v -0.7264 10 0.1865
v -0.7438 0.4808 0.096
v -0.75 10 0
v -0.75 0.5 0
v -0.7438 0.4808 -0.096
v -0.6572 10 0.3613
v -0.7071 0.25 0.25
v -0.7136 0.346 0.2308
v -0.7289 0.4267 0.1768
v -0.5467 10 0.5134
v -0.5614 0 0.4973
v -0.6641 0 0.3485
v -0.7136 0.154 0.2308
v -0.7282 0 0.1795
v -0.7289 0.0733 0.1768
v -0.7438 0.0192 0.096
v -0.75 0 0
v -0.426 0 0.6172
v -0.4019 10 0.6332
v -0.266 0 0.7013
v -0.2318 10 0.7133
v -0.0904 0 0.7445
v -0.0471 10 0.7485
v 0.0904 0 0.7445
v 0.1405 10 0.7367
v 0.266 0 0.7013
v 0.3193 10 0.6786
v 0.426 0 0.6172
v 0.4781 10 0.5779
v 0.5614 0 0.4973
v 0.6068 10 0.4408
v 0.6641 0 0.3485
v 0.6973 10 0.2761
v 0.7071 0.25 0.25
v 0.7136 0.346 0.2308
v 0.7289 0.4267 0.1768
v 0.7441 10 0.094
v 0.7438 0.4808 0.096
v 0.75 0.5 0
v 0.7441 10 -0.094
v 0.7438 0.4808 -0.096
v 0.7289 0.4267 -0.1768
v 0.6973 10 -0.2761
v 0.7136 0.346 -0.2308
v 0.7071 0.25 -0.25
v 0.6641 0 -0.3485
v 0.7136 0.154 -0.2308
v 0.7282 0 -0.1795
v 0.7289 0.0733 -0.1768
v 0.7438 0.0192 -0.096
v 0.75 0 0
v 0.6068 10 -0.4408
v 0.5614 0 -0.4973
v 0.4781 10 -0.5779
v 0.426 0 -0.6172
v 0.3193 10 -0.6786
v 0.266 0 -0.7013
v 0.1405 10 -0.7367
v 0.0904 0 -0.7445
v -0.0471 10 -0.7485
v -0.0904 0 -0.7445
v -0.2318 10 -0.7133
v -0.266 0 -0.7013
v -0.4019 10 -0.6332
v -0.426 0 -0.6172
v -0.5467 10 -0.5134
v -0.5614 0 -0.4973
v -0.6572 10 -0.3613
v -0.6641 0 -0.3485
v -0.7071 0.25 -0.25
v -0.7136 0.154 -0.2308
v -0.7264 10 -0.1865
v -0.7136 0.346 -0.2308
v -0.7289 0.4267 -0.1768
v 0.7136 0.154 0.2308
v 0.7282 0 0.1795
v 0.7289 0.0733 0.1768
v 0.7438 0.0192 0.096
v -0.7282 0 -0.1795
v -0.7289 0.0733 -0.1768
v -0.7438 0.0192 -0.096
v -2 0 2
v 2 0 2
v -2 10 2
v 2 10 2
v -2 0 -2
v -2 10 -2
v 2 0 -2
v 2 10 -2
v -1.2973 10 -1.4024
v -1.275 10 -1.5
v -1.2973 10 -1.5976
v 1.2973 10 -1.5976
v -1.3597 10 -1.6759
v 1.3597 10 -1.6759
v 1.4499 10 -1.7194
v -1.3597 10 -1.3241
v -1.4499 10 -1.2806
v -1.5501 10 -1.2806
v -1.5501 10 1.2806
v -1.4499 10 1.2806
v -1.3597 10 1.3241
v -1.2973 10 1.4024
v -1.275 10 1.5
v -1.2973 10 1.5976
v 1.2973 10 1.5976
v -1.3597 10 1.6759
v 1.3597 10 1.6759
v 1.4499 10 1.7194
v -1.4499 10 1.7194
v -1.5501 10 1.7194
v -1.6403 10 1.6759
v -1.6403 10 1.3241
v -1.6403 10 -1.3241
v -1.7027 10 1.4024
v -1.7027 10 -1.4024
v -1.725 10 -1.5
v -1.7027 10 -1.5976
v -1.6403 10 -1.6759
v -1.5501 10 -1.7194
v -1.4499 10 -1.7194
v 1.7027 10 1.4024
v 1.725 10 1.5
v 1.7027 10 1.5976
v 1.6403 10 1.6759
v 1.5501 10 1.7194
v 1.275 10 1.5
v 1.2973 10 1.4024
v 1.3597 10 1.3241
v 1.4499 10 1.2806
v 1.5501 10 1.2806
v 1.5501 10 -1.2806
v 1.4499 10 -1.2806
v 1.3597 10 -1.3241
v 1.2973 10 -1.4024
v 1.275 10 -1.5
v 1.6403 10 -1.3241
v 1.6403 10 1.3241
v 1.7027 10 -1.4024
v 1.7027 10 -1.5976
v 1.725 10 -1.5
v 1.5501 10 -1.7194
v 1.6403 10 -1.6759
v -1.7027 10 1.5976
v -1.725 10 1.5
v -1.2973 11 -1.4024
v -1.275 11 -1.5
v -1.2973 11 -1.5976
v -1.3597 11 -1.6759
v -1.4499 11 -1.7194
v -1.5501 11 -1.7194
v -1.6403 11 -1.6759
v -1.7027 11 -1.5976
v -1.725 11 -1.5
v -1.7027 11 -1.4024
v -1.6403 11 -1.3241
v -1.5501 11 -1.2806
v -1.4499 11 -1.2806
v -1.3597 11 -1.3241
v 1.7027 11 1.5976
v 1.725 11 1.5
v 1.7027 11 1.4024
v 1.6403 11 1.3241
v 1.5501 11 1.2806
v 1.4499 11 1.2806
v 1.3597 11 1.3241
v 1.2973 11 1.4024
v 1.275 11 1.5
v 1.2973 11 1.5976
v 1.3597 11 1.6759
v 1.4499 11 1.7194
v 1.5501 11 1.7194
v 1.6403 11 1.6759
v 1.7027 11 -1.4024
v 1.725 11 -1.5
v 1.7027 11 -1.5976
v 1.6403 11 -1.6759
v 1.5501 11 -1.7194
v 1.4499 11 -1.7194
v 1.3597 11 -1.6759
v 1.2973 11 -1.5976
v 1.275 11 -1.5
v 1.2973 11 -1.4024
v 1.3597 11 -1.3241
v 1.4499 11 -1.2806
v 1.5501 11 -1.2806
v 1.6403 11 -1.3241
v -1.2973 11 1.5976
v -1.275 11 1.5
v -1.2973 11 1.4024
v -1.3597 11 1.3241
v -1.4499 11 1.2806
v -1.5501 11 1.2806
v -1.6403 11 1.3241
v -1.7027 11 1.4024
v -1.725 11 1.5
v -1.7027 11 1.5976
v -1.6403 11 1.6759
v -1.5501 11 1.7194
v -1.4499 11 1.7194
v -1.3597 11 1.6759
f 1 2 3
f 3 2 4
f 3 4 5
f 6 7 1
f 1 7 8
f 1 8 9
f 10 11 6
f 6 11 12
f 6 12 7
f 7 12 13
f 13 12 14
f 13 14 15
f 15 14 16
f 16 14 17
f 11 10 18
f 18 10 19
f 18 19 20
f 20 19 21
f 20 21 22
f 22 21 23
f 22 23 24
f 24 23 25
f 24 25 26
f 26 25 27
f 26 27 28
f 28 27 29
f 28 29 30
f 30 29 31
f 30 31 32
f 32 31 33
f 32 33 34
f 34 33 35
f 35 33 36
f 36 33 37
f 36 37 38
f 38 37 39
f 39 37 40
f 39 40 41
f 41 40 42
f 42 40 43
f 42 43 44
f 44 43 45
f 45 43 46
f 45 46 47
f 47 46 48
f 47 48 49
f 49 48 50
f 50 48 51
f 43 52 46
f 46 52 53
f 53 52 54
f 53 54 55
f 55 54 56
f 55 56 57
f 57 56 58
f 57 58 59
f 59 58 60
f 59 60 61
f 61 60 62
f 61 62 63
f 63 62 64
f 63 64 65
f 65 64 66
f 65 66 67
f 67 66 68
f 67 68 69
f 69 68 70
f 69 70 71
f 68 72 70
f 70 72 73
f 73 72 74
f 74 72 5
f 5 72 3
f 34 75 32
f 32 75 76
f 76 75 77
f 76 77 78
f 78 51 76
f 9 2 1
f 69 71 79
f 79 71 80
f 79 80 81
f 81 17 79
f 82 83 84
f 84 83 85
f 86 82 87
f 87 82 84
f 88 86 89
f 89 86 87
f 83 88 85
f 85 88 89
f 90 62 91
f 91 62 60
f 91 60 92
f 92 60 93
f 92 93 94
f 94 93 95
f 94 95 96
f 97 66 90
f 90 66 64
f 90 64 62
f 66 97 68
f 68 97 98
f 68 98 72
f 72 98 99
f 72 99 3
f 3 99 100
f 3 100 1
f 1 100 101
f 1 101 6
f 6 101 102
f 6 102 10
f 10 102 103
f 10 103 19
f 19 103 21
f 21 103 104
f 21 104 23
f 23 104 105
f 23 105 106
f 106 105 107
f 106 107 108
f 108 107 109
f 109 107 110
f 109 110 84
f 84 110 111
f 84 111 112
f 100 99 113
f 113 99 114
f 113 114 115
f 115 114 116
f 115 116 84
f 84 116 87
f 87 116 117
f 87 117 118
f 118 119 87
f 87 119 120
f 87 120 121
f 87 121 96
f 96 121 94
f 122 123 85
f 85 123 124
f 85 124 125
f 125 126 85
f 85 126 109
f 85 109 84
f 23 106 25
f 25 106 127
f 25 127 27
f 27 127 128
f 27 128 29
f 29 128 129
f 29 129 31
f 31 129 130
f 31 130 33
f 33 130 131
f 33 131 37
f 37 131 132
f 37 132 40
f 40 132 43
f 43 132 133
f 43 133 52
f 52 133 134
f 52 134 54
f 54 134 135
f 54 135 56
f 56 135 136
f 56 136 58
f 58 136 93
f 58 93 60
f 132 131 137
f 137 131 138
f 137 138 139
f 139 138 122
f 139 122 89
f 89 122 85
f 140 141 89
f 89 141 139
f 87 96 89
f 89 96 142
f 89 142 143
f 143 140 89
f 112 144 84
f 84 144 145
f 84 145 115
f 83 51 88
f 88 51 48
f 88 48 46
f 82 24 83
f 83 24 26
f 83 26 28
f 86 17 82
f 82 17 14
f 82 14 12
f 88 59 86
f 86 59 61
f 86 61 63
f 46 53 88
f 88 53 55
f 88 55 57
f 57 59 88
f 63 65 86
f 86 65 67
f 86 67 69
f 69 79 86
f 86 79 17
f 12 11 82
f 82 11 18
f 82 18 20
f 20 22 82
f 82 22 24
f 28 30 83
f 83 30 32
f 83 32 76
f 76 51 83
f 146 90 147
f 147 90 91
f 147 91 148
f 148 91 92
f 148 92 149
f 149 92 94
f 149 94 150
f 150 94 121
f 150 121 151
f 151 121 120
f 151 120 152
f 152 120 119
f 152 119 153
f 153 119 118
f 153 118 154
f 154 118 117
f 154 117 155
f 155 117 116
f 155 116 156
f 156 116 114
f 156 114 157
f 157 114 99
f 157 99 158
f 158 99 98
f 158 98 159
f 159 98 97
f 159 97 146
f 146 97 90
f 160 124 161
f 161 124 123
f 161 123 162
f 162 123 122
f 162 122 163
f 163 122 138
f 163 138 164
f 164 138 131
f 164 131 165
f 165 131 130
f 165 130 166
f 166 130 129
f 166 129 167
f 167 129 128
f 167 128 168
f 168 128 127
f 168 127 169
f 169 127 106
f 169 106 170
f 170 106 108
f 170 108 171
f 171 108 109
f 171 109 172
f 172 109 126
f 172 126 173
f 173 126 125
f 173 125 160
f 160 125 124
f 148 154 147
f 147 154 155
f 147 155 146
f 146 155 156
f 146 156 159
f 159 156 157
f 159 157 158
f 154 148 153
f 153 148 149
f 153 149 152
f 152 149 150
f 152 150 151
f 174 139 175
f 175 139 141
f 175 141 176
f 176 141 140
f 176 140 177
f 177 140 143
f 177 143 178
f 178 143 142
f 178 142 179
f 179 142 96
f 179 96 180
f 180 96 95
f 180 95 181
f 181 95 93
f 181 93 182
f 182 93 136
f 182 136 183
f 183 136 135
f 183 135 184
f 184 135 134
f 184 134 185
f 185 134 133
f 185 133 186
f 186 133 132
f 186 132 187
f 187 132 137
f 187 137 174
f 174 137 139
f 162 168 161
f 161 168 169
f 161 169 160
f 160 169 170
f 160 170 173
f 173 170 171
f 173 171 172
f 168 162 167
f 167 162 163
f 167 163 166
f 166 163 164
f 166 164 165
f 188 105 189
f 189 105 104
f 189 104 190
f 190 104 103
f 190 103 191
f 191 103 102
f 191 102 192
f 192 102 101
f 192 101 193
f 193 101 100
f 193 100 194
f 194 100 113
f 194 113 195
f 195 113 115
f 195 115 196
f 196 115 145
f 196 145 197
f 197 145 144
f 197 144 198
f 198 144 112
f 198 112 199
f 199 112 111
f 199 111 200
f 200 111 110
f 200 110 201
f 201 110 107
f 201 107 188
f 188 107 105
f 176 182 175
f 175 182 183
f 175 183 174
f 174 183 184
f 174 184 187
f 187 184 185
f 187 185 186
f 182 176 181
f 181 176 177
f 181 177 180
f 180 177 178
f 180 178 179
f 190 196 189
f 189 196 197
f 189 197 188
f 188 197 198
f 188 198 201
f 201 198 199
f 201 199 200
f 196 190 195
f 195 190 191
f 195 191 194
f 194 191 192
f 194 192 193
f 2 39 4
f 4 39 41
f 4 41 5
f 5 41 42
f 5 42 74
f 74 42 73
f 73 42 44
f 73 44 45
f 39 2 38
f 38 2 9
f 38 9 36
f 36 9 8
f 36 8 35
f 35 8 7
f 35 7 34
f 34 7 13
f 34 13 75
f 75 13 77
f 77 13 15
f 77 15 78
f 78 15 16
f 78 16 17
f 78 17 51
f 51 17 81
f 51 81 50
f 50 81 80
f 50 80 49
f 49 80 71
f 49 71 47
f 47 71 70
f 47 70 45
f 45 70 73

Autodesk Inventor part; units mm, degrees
ref_plane "YZ Plane" through (0, 0, 0) normal (1, 0, 0) x (0, 1, 0)
ref_plane "XZ Plane" through (0, 0, 0) normal (0, 1, 0) x (-1, 0, 0)
ref_plane "XY Plane" through (0, 0, 0) normal (0, 0, 1) x (1, 0, 0)
sketch "Sketch1" plane through (0, 0, 0) normal (0, 1, 0) x (-1, 0, 0)
  line L0 (2, 2) -> (-2, 2)
  line L1 (-2, 2) -> (-2, -2)
  line L2 (-2, -2) -> (2, -2)
  line L3 (2, -2) -> (2, 2)
  line L4 (2, 2) -> (-2, -2) construction
  line L5 (-2, 2) -> (2, -2) construction
  circle A0 centre (0, 0) radius 0.75
  dimension "d0" = 4
  dimension "d1" = 4
  dimension "d2" = 1.5
extrude "Extrusion1" add sketch "Sketch1" along normal blind 10
sketch "Sketch2" plane through (0, 10, 0) normal (0, 1, 0) x (1, 0, 0)
  line L0 (-1.5, 1.5) -> (1.5, -1.5) construction
  line L1 (1.5, 1.5) -> (-1.5, -1.5) construction
  circle A0 centre (1.5, -1.5) radius 0.225
  circle A1 centre (1.5, 1.5) radius 0.225
  circle A2 centre (-1.5, 1.5) radius 0.225
  circle A3 centre (-1.5, -1.5) radius 0.225
  point P0 (0, 0)
  dimension "d5" = 3
  dimension "d7" = 0.45
  dimension "d8" = 0.45
  dimension "d9" = 0.45
  dimension "d10" = 0.45
extrude "Extrusion2" add sketch "Sketch2" along normal blind 1
sketch "Sketch3" plane through (0, 0, 0) normal (0, -1, 0) x (1, 0, 0)
  line L0 (1, 0.25) -> (-1, 0.25)
  line L1 (-1, 0.25) -> (-1, -0.25)
  line L2 (-1, -0.25) -> (1, -0.25)
  line L3 (1, -0.25) -> (1, 0.25)
  line L4 (1, 0.25) -> (-1, -0.25) construction
  line L5 (-1, 0.25) -> (1, -0.25) construction
  point P0 (0, 0)
  dimension "d13" = 2
  dimension "d14" = 0.5
extrude "Extrusion3" add sketch "Sketch3" against normal blind 0.5
fillet "Fillet1" radius 0.25 4 edges at (0, 0, 0.25) (0, 0, -0.25) (0, 0.5, 0.25) (0, 0.5, -0.25)
properties part number "SpringAttachment"
